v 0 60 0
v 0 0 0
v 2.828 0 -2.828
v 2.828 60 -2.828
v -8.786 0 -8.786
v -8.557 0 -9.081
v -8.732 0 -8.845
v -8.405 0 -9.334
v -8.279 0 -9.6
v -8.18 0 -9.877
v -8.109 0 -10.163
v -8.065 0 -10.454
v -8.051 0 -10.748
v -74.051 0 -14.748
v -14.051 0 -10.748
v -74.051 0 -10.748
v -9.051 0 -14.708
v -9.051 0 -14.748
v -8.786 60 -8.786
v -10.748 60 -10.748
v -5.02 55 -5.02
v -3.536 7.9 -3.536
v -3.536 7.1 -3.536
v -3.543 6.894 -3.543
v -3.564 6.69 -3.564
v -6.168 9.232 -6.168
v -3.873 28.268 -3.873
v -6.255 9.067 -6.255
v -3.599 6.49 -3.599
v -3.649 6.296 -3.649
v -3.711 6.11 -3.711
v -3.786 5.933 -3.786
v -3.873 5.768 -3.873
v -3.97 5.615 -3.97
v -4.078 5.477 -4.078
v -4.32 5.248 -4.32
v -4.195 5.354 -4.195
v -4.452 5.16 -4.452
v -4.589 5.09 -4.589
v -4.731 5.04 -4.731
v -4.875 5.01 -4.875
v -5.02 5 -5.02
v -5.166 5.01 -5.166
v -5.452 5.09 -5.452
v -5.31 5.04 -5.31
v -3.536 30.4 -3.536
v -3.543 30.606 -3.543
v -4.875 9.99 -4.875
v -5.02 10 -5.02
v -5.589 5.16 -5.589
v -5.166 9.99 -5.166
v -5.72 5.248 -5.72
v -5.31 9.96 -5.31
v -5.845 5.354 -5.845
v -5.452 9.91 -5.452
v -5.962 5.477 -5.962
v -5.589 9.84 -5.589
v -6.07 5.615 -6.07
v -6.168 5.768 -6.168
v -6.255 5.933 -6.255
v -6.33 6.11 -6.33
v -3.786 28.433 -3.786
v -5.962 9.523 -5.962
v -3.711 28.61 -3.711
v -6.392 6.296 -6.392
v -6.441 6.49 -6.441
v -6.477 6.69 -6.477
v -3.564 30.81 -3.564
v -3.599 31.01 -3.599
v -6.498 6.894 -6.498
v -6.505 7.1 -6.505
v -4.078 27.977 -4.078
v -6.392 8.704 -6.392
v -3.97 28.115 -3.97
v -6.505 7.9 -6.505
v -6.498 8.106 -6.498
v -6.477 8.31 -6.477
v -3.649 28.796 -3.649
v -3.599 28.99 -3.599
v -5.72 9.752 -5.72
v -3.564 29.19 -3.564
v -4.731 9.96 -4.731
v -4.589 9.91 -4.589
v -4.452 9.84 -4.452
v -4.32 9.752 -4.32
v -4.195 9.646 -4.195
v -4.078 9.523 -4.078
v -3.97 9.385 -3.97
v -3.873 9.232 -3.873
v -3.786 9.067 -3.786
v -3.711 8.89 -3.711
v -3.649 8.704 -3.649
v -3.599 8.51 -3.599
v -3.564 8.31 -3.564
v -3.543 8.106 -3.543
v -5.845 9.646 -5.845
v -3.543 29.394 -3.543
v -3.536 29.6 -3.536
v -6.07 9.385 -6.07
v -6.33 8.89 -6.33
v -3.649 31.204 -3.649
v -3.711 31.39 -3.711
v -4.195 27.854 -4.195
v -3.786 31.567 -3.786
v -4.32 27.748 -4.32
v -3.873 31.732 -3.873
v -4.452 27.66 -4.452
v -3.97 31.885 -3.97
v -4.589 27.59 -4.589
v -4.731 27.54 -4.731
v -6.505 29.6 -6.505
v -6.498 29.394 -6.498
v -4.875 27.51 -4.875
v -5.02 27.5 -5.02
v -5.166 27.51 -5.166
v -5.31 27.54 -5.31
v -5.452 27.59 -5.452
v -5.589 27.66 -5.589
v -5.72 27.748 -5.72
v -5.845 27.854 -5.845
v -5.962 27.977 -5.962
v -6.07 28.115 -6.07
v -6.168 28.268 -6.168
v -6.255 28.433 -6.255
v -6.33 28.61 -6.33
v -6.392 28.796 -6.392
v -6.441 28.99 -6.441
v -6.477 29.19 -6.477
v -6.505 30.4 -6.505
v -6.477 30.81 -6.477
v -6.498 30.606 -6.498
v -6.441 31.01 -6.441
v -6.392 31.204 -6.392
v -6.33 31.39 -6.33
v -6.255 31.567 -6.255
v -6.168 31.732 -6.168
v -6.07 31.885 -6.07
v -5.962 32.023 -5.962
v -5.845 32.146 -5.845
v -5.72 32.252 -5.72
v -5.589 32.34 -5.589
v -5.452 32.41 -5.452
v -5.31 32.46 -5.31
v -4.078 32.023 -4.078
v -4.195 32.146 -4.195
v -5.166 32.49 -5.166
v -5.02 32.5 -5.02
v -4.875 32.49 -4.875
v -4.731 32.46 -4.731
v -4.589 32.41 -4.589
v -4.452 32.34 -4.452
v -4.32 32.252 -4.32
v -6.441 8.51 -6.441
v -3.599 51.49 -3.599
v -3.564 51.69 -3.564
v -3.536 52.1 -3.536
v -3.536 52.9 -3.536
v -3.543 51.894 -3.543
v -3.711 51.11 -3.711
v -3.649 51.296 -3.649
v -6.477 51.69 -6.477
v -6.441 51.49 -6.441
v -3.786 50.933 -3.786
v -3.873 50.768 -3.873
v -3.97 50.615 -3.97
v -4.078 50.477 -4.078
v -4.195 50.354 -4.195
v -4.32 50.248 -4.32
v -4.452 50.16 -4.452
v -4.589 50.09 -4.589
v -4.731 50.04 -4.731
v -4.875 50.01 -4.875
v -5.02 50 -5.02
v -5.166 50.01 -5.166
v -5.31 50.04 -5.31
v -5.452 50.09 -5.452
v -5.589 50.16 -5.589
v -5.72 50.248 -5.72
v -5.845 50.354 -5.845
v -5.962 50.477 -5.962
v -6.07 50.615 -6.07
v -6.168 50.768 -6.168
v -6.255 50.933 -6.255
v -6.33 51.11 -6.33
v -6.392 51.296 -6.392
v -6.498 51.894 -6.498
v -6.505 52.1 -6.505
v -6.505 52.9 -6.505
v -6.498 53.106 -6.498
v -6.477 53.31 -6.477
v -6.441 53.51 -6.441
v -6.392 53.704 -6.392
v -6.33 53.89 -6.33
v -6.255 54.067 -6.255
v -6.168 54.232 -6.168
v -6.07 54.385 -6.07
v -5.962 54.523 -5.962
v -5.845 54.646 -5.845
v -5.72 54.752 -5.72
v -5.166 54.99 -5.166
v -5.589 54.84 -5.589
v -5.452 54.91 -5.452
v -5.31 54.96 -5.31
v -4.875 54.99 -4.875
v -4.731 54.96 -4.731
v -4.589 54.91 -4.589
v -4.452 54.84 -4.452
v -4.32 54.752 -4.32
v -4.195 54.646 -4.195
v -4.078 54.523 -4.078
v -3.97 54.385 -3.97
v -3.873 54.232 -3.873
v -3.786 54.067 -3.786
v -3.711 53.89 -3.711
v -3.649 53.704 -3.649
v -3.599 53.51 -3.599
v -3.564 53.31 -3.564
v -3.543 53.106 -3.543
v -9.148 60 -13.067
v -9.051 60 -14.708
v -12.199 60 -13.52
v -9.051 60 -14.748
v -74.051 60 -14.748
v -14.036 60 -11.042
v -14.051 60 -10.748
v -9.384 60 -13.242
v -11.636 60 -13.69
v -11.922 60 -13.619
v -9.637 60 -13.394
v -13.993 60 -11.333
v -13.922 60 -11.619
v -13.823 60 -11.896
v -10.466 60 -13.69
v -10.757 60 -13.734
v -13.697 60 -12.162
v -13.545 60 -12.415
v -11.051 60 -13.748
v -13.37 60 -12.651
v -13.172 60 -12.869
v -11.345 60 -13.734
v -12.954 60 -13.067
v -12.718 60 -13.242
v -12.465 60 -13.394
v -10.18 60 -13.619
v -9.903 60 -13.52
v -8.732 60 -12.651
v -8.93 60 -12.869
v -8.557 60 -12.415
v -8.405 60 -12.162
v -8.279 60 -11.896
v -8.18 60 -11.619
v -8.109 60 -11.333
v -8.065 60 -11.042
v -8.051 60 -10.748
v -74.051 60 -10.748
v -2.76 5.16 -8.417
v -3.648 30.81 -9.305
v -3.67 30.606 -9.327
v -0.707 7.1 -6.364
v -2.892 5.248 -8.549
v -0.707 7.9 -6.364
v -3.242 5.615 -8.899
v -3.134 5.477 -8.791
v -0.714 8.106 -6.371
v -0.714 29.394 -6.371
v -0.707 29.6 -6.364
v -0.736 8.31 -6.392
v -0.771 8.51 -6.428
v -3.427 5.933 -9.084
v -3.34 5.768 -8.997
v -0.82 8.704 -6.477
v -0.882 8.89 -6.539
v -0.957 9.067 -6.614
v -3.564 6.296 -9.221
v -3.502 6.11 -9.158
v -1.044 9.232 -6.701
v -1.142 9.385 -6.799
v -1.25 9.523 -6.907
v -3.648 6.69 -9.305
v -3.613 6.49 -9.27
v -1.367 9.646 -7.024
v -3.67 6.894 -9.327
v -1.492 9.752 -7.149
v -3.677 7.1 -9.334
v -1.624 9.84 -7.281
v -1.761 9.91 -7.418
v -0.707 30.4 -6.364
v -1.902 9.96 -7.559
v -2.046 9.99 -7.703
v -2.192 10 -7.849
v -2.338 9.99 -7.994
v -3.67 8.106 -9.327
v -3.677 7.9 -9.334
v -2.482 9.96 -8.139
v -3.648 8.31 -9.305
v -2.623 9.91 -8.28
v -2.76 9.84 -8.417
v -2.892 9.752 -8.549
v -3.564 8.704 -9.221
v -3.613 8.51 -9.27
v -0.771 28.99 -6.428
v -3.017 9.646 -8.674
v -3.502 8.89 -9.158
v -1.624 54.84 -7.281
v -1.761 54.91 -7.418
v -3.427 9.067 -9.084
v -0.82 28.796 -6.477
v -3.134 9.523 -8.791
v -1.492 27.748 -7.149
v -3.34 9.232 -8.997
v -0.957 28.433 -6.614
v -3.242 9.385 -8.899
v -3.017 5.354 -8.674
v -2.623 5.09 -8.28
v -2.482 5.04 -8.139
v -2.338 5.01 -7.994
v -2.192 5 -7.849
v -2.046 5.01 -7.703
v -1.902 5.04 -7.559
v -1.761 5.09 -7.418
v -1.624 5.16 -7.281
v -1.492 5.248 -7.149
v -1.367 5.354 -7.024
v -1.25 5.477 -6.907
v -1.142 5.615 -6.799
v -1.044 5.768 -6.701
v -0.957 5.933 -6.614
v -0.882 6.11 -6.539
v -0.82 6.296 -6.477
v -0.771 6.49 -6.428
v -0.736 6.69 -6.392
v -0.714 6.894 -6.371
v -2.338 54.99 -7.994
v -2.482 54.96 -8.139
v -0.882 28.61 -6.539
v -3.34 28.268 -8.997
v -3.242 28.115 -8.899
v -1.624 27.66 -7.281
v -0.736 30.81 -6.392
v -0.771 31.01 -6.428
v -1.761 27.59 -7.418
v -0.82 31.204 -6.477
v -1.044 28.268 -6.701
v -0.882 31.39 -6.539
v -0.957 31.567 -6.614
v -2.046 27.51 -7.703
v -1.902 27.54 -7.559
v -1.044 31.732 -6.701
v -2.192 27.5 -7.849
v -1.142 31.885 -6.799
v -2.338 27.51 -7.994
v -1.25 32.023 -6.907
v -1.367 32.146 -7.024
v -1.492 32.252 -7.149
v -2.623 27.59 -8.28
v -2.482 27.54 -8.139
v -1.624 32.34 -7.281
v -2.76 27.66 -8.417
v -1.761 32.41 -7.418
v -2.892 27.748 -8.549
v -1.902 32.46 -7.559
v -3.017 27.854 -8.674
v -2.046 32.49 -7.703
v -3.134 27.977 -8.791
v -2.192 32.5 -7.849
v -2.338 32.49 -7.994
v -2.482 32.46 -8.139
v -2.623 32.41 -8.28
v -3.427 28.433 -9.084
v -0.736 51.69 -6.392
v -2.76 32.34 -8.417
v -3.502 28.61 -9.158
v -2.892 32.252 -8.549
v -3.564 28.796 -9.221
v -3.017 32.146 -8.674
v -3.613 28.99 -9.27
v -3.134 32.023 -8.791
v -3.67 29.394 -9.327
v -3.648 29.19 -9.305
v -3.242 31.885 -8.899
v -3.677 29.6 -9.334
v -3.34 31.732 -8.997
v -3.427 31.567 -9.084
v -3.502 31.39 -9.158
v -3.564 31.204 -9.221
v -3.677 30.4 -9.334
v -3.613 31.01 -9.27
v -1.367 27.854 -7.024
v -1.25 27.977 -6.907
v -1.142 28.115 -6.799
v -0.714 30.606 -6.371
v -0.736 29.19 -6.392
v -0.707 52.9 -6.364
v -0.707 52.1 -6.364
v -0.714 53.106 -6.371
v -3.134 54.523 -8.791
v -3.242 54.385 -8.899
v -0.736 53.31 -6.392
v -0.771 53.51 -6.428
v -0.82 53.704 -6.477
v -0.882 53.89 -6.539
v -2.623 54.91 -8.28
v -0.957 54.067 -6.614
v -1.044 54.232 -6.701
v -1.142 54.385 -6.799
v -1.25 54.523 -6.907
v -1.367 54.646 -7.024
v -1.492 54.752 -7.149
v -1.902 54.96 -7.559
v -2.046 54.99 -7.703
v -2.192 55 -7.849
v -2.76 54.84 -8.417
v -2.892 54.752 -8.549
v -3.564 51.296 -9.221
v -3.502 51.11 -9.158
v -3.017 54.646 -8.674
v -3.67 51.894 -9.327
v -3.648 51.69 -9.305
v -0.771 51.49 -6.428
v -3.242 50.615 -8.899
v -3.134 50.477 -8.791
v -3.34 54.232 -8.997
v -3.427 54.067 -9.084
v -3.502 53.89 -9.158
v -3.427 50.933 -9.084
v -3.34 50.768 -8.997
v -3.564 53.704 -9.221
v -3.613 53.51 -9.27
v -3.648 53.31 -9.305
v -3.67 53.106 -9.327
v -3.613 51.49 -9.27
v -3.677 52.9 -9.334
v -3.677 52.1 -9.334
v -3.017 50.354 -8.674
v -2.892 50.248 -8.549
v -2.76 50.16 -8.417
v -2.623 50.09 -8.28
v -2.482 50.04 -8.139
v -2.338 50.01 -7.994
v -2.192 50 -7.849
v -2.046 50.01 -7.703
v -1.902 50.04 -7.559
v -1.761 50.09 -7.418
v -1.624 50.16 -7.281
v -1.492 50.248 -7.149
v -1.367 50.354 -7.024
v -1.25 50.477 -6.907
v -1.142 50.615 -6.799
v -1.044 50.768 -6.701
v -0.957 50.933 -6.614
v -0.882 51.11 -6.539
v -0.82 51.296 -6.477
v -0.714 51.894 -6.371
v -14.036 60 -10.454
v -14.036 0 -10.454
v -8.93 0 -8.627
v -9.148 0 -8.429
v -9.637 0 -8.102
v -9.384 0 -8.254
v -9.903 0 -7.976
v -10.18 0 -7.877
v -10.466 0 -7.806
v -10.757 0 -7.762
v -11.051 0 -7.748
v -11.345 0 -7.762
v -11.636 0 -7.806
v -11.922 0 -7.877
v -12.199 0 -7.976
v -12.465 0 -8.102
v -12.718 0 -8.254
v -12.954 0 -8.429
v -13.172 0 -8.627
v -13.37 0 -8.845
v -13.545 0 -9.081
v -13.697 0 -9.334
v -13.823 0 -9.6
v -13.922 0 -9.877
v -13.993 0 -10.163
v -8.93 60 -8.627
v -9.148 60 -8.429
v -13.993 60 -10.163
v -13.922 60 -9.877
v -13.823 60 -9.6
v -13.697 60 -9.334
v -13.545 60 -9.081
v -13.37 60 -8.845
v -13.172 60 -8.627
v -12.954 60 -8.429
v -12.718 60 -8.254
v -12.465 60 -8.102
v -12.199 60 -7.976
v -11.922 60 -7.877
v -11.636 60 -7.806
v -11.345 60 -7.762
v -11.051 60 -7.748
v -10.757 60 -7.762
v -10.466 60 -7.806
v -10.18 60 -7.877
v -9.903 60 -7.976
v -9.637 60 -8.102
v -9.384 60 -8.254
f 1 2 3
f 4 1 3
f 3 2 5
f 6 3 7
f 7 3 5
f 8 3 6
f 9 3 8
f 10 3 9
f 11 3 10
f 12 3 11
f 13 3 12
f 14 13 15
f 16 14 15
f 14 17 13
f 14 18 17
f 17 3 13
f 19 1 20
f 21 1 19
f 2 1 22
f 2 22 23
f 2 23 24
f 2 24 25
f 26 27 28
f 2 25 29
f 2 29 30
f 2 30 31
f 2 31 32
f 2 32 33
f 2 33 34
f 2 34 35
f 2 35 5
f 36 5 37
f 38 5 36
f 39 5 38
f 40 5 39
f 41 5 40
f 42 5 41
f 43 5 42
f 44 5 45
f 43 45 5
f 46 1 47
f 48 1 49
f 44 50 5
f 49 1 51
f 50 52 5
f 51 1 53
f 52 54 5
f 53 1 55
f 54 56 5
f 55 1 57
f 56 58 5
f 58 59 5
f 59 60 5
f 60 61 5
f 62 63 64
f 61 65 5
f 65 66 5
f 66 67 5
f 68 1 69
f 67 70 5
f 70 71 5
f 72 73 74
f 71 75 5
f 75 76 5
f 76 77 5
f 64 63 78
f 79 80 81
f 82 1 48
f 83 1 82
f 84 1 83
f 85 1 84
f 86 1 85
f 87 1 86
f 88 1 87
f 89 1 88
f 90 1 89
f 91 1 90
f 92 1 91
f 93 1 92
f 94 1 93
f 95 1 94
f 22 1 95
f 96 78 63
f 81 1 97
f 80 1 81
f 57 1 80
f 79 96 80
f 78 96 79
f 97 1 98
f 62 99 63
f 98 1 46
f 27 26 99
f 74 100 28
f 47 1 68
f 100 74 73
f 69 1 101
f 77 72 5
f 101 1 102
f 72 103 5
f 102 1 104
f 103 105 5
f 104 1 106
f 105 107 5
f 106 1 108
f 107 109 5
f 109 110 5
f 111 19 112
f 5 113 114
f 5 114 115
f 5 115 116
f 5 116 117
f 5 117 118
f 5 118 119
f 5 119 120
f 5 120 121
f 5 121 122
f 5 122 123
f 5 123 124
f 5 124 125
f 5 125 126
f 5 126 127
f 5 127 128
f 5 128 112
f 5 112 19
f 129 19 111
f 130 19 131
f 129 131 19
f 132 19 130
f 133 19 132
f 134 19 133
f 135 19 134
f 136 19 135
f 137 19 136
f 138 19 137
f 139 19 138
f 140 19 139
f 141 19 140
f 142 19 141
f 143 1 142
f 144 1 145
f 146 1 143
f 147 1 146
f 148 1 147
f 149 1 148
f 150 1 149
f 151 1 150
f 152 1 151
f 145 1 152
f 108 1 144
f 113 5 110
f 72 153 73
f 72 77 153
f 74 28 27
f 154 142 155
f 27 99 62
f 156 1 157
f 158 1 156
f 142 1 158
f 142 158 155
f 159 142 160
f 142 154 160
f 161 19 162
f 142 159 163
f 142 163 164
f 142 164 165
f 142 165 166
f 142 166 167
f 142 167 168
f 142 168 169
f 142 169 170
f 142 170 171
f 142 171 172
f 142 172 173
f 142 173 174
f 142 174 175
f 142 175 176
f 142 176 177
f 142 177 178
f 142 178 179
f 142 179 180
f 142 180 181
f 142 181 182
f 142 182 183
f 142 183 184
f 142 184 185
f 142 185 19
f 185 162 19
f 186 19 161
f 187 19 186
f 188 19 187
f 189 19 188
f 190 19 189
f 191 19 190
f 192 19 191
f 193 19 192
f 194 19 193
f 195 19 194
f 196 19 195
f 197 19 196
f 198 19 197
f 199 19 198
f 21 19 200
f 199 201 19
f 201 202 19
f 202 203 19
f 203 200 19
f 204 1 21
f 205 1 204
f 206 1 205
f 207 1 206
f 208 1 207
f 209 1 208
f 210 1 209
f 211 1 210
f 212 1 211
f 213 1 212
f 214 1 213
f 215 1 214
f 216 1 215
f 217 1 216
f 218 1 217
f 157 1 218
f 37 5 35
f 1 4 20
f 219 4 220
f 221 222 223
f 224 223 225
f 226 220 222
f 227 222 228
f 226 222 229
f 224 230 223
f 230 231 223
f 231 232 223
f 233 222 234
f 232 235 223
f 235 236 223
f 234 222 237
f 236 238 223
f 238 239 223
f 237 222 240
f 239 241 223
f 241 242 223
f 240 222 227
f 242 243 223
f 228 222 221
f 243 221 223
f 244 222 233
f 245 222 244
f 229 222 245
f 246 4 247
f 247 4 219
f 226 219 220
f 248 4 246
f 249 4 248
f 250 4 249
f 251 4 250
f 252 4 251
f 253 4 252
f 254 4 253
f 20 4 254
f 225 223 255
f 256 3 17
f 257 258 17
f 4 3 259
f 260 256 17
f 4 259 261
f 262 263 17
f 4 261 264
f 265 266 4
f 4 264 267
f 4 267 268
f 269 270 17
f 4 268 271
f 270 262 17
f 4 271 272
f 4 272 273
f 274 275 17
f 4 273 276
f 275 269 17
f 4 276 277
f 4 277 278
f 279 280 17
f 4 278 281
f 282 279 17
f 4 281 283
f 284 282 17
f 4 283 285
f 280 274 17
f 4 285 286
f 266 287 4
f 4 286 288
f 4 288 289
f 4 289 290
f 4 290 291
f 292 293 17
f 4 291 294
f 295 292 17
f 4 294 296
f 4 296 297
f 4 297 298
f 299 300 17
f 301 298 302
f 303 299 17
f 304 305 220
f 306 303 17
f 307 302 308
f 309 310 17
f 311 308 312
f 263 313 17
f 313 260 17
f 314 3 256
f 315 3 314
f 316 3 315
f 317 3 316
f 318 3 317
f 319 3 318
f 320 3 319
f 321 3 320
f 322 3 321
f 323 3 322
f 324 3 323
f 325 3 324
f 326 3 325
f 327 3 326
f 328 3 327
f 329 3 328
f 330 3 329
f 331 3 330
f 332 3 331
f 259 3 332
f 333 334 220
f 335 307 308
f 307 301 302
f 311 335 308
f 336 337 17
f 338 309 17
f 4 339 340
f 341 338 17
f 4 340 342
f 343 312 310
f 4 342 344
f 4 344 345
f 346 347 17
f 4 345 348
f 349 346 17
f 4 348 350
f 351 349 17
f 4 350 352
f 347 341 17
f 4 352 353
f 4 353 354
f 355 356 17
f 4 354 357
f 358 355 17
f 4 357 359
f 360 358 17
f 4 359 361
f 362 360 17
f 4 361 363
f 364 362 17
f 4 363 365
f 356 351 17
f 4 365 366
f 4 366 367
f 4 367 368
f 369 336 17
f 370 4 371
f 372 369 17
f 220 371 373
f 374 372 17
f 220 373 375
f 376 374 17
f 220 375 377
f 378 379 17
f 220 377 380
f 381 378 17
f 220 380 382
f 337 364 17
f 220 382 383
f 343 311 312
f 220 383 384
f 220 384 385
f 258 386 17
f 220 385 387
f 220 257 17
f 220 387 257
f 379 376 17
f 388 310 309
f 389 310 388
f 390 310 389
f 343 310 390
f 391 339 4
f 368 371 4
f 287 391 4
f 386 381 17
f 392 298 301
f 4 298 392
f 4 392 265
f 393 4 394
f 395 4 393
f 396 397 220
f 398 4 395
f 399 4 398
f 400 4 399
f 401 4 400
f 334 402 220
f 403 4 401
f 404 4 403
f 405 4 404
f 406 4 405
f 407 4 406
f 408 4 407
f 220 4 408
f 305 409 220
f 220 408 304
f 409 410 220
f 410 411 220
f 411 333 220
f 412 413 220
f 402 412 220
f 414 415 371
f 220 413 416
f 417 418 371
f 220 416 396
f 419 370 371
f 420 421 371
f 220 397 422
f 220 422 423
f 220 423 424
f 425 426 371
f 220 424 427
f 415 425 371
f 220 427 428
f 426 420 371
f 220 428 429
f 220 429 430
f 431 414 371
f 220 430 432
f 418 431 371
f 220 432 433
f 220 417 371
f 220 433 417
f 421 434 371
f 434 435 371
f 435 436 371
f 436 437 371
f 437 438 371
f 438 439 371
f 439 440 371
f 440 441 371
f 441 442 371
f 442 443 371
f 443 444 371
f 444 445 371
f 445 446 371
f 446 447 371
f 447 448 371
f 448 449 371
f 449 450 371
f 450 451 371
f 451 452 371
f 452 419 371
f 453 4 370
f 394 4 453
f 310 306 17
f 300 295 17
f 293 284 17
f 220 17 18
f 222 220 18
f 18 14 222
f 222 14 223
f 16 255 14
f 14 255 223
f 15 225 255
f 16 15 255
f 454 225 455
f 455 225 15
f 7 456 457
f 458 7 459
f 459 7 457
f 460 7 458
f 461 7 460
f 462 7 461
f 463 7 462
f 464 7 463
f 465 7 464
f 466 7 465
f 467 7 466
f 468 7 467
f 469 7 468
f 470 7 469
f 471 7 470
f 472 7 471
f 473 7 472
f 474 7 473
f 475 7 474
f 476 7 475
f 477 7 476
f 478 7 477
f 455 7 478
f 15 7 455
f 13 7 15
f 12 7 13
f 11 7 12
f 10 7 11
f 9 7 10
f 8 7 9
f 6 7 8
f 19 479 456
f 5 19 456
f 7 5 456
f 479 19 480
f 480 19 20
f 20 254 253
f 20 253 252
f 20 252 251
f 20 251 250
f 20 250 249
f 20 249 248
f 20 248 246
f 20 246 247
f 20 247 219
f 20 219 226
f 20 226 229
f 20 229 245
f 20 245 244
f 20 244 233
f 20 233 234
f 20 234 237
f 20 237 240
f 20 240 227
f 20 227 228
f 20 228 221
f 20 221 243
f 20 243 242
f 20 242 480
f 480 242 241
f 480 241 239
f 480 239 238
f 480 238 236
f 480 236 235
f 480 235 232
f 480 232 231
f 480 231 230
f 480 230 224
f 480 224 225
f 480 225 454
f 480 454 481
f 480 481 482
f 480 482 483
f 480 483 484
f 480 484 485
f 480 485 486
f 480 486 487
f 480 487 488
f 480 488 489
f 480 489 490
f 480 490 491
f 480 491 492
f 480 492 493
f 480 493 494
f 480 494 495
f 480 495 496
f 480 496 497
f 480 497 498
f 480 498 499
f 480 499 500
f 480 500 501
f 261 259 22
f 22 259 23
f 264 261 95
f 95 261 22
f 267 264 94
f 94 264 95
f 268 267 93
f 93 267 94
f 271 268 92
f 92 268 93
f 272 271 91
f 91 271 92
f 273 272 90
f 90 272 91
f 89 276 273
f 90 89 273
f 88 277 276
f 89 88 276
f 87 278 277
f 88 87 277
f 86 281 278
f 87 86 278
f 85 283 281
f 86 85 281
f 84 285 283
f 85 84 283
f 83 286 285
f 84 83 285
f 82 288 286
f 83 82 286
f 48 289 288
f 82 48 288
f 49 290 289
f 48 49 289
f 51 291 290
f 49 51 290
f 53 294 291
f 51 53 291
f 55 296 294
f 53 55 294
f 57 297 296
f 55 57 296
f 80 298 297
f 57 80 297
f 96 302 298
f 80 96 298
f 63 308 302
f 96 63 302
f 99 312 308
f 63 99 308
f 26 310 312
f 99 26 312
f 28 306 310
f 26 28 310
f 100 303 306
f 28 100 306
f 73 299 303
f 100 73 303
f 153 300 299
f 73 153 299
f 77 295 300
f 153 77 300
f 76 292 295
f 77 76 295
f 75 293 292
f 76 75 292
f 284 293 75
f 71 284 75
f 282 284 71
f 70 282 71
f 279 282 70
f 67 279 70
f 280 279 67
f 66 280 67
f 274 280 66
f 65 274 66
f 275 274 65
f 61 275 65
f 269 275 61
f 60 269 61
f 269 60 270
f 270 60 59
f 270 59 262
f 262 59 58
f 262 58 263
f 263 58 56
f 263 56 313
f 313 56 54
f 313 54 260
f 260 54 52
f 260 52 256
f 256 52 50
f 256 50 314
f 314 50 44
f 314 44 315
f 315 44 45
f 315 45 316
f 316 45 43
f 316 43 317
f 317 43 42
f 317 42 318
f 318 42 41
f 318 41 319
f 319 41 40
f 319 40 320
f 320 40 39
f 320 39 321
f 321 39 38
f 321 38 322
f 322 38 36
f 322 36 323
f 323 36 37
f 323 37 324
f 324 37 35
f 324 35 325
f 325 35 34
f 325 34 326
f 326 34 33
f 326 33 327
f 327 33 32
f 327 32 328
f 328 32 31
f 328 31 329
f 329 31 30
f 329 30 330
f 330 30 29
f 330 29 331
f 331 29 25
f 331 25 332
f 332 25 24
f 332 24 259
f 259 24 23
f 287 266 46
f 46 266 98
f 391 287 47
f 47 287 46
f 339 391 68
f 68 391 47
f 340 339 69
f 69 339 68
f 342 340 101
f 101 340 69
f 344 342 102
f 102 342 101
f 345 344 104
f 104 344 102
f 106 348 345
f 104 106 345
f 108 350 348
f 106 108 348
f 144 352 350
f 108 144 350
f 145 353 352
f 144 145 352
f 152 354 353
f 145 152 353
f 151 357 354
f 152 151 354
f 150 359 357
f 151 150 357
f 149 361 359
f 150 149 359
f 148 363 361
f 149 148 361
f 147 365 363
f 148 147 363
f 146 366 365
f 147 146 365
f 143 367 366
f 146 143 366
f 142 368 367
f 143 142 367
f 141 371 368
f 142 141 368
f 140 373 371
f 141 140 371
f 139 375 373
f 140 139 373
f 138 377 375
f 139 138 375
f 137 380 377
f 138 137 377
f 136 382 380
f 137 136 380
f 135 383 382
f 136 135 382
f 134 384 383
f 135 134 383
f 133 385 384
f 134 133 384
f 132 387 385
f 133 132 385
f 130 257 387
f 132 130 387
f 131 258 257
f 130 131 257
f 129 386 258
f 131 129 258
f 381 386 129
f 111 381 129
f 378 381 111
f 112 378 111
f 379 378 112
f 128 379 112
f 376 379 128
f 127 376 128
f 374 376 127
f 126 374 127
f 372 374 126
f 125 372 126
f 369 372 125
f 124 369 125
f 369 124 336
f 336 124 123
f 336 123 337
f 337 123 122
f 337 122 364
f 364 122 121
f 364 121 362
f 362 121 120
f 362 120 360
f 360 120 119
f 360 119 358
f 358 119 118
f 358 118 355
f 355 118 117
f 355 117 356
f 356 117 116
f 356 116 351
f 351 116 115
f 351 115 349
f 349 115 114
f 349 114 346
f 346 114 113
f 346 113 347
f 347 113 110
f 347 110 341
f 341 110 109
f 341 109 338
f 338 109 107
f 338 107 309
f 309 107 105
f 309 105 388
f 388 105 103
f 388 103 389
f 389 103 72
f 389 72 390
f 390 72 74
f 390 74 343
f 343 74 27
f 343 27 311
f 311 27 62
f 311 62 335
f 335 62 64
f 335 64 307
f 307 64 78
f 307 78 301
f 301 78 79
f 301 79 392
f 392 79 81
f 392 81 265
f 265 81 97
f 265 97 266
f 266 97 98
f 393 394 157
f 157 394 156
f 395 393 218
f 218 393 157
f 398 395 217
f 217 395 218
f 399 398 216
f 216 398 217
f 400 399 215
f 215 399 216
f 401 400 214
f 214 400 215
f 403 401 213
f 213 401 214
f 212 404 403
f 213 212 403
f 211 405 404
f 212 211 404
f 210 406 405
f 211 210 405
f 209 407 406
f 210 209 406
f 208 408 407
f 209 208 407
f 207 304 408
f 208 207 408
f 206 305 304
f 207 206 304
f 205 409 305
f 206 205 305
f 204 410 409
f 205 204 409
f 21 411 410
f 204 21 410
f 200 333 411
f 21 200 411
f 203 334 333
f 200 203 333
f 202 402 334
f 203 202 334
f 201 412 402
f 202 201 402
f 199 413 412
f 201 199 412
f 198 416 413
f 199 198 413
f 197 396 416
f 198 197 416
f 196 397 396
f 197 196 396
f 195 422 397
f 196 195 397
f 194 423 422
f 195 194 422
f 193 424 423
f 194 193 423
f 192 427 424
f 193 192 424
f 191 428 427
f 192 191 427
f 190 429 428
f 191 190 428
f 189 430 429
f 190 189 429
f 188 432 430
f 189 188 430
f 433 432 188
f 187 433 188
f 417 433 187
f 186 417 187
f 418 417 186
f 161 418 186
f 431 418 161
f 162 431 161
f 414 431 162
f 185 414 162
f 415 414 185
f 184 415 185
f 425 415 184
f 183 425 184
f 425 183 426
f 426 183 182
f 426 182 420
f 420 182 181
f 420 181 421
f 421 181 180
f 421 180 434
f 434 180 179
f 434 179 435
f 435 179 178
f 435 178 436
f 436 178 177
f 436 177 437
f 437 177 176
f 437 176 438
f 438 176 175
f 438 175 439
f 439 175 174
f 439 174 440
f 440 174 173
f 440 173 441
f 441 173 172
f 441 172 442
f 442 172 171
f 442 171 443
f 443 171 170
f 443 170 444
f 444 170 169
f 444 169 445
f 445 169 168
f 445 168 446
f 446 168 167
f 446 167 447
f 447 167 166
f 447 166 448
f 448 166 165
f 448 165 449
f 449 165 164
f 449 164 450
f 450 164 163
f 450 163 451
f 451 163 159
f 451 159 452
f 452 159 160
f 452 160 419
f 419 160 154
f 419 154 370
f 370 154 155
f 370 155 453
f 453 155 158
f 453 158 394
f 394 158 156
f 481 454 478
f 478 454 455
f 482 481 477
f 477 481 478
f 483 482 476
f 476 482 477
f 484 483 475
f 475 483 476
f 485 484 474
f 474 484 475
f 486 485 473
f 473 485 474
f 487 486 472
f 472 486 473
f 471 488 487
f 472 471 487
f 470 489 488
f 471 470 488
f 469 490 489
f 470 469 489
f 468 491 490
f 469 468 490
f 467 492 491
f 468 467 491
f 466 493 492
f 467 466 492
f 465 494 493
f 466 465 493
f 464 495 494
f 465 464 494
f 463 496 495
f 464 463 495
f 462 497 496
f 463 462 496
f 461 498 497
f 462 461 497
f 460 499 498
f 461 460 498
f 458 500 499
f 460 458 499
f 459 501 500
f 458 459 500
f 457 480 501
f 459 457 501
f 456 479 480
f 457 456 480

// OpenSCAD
$fn=64;

rotate([0,-45+180,0]) {
difference() {
  cube([16.8,60,4]);
  translate([5,30-25,-0.5]) roundedcube(4.2,5,10,2.1);
  translate([5,30-2.5,-0.5]) roundedcube(4.2,5,10,2.1);
  translate([5,30+20,-0.5]) roundedcube(4.2,5,10,2.1);
}

translate([14,0,1.2]) 
  rotate([0,45,0]) {
    cube([65,60,4]);
    translate([2,0,0]) rotate([270,0,0]) cylinder(60,3,3);
  }

}

module roundedcube(x, y, z, cr) {
  hull() {
    translate([cr,cr,0]) cylinder(z,cr,cr);
    translate([x-cr,cr,0]) cylinder(z,cr,cr);
    translate([cr,y-cr,0]) cylinder(z,cr,cr);
    translate([x-cr,y-cr,0]) cylinder(z,cr,cr);
  }
}
